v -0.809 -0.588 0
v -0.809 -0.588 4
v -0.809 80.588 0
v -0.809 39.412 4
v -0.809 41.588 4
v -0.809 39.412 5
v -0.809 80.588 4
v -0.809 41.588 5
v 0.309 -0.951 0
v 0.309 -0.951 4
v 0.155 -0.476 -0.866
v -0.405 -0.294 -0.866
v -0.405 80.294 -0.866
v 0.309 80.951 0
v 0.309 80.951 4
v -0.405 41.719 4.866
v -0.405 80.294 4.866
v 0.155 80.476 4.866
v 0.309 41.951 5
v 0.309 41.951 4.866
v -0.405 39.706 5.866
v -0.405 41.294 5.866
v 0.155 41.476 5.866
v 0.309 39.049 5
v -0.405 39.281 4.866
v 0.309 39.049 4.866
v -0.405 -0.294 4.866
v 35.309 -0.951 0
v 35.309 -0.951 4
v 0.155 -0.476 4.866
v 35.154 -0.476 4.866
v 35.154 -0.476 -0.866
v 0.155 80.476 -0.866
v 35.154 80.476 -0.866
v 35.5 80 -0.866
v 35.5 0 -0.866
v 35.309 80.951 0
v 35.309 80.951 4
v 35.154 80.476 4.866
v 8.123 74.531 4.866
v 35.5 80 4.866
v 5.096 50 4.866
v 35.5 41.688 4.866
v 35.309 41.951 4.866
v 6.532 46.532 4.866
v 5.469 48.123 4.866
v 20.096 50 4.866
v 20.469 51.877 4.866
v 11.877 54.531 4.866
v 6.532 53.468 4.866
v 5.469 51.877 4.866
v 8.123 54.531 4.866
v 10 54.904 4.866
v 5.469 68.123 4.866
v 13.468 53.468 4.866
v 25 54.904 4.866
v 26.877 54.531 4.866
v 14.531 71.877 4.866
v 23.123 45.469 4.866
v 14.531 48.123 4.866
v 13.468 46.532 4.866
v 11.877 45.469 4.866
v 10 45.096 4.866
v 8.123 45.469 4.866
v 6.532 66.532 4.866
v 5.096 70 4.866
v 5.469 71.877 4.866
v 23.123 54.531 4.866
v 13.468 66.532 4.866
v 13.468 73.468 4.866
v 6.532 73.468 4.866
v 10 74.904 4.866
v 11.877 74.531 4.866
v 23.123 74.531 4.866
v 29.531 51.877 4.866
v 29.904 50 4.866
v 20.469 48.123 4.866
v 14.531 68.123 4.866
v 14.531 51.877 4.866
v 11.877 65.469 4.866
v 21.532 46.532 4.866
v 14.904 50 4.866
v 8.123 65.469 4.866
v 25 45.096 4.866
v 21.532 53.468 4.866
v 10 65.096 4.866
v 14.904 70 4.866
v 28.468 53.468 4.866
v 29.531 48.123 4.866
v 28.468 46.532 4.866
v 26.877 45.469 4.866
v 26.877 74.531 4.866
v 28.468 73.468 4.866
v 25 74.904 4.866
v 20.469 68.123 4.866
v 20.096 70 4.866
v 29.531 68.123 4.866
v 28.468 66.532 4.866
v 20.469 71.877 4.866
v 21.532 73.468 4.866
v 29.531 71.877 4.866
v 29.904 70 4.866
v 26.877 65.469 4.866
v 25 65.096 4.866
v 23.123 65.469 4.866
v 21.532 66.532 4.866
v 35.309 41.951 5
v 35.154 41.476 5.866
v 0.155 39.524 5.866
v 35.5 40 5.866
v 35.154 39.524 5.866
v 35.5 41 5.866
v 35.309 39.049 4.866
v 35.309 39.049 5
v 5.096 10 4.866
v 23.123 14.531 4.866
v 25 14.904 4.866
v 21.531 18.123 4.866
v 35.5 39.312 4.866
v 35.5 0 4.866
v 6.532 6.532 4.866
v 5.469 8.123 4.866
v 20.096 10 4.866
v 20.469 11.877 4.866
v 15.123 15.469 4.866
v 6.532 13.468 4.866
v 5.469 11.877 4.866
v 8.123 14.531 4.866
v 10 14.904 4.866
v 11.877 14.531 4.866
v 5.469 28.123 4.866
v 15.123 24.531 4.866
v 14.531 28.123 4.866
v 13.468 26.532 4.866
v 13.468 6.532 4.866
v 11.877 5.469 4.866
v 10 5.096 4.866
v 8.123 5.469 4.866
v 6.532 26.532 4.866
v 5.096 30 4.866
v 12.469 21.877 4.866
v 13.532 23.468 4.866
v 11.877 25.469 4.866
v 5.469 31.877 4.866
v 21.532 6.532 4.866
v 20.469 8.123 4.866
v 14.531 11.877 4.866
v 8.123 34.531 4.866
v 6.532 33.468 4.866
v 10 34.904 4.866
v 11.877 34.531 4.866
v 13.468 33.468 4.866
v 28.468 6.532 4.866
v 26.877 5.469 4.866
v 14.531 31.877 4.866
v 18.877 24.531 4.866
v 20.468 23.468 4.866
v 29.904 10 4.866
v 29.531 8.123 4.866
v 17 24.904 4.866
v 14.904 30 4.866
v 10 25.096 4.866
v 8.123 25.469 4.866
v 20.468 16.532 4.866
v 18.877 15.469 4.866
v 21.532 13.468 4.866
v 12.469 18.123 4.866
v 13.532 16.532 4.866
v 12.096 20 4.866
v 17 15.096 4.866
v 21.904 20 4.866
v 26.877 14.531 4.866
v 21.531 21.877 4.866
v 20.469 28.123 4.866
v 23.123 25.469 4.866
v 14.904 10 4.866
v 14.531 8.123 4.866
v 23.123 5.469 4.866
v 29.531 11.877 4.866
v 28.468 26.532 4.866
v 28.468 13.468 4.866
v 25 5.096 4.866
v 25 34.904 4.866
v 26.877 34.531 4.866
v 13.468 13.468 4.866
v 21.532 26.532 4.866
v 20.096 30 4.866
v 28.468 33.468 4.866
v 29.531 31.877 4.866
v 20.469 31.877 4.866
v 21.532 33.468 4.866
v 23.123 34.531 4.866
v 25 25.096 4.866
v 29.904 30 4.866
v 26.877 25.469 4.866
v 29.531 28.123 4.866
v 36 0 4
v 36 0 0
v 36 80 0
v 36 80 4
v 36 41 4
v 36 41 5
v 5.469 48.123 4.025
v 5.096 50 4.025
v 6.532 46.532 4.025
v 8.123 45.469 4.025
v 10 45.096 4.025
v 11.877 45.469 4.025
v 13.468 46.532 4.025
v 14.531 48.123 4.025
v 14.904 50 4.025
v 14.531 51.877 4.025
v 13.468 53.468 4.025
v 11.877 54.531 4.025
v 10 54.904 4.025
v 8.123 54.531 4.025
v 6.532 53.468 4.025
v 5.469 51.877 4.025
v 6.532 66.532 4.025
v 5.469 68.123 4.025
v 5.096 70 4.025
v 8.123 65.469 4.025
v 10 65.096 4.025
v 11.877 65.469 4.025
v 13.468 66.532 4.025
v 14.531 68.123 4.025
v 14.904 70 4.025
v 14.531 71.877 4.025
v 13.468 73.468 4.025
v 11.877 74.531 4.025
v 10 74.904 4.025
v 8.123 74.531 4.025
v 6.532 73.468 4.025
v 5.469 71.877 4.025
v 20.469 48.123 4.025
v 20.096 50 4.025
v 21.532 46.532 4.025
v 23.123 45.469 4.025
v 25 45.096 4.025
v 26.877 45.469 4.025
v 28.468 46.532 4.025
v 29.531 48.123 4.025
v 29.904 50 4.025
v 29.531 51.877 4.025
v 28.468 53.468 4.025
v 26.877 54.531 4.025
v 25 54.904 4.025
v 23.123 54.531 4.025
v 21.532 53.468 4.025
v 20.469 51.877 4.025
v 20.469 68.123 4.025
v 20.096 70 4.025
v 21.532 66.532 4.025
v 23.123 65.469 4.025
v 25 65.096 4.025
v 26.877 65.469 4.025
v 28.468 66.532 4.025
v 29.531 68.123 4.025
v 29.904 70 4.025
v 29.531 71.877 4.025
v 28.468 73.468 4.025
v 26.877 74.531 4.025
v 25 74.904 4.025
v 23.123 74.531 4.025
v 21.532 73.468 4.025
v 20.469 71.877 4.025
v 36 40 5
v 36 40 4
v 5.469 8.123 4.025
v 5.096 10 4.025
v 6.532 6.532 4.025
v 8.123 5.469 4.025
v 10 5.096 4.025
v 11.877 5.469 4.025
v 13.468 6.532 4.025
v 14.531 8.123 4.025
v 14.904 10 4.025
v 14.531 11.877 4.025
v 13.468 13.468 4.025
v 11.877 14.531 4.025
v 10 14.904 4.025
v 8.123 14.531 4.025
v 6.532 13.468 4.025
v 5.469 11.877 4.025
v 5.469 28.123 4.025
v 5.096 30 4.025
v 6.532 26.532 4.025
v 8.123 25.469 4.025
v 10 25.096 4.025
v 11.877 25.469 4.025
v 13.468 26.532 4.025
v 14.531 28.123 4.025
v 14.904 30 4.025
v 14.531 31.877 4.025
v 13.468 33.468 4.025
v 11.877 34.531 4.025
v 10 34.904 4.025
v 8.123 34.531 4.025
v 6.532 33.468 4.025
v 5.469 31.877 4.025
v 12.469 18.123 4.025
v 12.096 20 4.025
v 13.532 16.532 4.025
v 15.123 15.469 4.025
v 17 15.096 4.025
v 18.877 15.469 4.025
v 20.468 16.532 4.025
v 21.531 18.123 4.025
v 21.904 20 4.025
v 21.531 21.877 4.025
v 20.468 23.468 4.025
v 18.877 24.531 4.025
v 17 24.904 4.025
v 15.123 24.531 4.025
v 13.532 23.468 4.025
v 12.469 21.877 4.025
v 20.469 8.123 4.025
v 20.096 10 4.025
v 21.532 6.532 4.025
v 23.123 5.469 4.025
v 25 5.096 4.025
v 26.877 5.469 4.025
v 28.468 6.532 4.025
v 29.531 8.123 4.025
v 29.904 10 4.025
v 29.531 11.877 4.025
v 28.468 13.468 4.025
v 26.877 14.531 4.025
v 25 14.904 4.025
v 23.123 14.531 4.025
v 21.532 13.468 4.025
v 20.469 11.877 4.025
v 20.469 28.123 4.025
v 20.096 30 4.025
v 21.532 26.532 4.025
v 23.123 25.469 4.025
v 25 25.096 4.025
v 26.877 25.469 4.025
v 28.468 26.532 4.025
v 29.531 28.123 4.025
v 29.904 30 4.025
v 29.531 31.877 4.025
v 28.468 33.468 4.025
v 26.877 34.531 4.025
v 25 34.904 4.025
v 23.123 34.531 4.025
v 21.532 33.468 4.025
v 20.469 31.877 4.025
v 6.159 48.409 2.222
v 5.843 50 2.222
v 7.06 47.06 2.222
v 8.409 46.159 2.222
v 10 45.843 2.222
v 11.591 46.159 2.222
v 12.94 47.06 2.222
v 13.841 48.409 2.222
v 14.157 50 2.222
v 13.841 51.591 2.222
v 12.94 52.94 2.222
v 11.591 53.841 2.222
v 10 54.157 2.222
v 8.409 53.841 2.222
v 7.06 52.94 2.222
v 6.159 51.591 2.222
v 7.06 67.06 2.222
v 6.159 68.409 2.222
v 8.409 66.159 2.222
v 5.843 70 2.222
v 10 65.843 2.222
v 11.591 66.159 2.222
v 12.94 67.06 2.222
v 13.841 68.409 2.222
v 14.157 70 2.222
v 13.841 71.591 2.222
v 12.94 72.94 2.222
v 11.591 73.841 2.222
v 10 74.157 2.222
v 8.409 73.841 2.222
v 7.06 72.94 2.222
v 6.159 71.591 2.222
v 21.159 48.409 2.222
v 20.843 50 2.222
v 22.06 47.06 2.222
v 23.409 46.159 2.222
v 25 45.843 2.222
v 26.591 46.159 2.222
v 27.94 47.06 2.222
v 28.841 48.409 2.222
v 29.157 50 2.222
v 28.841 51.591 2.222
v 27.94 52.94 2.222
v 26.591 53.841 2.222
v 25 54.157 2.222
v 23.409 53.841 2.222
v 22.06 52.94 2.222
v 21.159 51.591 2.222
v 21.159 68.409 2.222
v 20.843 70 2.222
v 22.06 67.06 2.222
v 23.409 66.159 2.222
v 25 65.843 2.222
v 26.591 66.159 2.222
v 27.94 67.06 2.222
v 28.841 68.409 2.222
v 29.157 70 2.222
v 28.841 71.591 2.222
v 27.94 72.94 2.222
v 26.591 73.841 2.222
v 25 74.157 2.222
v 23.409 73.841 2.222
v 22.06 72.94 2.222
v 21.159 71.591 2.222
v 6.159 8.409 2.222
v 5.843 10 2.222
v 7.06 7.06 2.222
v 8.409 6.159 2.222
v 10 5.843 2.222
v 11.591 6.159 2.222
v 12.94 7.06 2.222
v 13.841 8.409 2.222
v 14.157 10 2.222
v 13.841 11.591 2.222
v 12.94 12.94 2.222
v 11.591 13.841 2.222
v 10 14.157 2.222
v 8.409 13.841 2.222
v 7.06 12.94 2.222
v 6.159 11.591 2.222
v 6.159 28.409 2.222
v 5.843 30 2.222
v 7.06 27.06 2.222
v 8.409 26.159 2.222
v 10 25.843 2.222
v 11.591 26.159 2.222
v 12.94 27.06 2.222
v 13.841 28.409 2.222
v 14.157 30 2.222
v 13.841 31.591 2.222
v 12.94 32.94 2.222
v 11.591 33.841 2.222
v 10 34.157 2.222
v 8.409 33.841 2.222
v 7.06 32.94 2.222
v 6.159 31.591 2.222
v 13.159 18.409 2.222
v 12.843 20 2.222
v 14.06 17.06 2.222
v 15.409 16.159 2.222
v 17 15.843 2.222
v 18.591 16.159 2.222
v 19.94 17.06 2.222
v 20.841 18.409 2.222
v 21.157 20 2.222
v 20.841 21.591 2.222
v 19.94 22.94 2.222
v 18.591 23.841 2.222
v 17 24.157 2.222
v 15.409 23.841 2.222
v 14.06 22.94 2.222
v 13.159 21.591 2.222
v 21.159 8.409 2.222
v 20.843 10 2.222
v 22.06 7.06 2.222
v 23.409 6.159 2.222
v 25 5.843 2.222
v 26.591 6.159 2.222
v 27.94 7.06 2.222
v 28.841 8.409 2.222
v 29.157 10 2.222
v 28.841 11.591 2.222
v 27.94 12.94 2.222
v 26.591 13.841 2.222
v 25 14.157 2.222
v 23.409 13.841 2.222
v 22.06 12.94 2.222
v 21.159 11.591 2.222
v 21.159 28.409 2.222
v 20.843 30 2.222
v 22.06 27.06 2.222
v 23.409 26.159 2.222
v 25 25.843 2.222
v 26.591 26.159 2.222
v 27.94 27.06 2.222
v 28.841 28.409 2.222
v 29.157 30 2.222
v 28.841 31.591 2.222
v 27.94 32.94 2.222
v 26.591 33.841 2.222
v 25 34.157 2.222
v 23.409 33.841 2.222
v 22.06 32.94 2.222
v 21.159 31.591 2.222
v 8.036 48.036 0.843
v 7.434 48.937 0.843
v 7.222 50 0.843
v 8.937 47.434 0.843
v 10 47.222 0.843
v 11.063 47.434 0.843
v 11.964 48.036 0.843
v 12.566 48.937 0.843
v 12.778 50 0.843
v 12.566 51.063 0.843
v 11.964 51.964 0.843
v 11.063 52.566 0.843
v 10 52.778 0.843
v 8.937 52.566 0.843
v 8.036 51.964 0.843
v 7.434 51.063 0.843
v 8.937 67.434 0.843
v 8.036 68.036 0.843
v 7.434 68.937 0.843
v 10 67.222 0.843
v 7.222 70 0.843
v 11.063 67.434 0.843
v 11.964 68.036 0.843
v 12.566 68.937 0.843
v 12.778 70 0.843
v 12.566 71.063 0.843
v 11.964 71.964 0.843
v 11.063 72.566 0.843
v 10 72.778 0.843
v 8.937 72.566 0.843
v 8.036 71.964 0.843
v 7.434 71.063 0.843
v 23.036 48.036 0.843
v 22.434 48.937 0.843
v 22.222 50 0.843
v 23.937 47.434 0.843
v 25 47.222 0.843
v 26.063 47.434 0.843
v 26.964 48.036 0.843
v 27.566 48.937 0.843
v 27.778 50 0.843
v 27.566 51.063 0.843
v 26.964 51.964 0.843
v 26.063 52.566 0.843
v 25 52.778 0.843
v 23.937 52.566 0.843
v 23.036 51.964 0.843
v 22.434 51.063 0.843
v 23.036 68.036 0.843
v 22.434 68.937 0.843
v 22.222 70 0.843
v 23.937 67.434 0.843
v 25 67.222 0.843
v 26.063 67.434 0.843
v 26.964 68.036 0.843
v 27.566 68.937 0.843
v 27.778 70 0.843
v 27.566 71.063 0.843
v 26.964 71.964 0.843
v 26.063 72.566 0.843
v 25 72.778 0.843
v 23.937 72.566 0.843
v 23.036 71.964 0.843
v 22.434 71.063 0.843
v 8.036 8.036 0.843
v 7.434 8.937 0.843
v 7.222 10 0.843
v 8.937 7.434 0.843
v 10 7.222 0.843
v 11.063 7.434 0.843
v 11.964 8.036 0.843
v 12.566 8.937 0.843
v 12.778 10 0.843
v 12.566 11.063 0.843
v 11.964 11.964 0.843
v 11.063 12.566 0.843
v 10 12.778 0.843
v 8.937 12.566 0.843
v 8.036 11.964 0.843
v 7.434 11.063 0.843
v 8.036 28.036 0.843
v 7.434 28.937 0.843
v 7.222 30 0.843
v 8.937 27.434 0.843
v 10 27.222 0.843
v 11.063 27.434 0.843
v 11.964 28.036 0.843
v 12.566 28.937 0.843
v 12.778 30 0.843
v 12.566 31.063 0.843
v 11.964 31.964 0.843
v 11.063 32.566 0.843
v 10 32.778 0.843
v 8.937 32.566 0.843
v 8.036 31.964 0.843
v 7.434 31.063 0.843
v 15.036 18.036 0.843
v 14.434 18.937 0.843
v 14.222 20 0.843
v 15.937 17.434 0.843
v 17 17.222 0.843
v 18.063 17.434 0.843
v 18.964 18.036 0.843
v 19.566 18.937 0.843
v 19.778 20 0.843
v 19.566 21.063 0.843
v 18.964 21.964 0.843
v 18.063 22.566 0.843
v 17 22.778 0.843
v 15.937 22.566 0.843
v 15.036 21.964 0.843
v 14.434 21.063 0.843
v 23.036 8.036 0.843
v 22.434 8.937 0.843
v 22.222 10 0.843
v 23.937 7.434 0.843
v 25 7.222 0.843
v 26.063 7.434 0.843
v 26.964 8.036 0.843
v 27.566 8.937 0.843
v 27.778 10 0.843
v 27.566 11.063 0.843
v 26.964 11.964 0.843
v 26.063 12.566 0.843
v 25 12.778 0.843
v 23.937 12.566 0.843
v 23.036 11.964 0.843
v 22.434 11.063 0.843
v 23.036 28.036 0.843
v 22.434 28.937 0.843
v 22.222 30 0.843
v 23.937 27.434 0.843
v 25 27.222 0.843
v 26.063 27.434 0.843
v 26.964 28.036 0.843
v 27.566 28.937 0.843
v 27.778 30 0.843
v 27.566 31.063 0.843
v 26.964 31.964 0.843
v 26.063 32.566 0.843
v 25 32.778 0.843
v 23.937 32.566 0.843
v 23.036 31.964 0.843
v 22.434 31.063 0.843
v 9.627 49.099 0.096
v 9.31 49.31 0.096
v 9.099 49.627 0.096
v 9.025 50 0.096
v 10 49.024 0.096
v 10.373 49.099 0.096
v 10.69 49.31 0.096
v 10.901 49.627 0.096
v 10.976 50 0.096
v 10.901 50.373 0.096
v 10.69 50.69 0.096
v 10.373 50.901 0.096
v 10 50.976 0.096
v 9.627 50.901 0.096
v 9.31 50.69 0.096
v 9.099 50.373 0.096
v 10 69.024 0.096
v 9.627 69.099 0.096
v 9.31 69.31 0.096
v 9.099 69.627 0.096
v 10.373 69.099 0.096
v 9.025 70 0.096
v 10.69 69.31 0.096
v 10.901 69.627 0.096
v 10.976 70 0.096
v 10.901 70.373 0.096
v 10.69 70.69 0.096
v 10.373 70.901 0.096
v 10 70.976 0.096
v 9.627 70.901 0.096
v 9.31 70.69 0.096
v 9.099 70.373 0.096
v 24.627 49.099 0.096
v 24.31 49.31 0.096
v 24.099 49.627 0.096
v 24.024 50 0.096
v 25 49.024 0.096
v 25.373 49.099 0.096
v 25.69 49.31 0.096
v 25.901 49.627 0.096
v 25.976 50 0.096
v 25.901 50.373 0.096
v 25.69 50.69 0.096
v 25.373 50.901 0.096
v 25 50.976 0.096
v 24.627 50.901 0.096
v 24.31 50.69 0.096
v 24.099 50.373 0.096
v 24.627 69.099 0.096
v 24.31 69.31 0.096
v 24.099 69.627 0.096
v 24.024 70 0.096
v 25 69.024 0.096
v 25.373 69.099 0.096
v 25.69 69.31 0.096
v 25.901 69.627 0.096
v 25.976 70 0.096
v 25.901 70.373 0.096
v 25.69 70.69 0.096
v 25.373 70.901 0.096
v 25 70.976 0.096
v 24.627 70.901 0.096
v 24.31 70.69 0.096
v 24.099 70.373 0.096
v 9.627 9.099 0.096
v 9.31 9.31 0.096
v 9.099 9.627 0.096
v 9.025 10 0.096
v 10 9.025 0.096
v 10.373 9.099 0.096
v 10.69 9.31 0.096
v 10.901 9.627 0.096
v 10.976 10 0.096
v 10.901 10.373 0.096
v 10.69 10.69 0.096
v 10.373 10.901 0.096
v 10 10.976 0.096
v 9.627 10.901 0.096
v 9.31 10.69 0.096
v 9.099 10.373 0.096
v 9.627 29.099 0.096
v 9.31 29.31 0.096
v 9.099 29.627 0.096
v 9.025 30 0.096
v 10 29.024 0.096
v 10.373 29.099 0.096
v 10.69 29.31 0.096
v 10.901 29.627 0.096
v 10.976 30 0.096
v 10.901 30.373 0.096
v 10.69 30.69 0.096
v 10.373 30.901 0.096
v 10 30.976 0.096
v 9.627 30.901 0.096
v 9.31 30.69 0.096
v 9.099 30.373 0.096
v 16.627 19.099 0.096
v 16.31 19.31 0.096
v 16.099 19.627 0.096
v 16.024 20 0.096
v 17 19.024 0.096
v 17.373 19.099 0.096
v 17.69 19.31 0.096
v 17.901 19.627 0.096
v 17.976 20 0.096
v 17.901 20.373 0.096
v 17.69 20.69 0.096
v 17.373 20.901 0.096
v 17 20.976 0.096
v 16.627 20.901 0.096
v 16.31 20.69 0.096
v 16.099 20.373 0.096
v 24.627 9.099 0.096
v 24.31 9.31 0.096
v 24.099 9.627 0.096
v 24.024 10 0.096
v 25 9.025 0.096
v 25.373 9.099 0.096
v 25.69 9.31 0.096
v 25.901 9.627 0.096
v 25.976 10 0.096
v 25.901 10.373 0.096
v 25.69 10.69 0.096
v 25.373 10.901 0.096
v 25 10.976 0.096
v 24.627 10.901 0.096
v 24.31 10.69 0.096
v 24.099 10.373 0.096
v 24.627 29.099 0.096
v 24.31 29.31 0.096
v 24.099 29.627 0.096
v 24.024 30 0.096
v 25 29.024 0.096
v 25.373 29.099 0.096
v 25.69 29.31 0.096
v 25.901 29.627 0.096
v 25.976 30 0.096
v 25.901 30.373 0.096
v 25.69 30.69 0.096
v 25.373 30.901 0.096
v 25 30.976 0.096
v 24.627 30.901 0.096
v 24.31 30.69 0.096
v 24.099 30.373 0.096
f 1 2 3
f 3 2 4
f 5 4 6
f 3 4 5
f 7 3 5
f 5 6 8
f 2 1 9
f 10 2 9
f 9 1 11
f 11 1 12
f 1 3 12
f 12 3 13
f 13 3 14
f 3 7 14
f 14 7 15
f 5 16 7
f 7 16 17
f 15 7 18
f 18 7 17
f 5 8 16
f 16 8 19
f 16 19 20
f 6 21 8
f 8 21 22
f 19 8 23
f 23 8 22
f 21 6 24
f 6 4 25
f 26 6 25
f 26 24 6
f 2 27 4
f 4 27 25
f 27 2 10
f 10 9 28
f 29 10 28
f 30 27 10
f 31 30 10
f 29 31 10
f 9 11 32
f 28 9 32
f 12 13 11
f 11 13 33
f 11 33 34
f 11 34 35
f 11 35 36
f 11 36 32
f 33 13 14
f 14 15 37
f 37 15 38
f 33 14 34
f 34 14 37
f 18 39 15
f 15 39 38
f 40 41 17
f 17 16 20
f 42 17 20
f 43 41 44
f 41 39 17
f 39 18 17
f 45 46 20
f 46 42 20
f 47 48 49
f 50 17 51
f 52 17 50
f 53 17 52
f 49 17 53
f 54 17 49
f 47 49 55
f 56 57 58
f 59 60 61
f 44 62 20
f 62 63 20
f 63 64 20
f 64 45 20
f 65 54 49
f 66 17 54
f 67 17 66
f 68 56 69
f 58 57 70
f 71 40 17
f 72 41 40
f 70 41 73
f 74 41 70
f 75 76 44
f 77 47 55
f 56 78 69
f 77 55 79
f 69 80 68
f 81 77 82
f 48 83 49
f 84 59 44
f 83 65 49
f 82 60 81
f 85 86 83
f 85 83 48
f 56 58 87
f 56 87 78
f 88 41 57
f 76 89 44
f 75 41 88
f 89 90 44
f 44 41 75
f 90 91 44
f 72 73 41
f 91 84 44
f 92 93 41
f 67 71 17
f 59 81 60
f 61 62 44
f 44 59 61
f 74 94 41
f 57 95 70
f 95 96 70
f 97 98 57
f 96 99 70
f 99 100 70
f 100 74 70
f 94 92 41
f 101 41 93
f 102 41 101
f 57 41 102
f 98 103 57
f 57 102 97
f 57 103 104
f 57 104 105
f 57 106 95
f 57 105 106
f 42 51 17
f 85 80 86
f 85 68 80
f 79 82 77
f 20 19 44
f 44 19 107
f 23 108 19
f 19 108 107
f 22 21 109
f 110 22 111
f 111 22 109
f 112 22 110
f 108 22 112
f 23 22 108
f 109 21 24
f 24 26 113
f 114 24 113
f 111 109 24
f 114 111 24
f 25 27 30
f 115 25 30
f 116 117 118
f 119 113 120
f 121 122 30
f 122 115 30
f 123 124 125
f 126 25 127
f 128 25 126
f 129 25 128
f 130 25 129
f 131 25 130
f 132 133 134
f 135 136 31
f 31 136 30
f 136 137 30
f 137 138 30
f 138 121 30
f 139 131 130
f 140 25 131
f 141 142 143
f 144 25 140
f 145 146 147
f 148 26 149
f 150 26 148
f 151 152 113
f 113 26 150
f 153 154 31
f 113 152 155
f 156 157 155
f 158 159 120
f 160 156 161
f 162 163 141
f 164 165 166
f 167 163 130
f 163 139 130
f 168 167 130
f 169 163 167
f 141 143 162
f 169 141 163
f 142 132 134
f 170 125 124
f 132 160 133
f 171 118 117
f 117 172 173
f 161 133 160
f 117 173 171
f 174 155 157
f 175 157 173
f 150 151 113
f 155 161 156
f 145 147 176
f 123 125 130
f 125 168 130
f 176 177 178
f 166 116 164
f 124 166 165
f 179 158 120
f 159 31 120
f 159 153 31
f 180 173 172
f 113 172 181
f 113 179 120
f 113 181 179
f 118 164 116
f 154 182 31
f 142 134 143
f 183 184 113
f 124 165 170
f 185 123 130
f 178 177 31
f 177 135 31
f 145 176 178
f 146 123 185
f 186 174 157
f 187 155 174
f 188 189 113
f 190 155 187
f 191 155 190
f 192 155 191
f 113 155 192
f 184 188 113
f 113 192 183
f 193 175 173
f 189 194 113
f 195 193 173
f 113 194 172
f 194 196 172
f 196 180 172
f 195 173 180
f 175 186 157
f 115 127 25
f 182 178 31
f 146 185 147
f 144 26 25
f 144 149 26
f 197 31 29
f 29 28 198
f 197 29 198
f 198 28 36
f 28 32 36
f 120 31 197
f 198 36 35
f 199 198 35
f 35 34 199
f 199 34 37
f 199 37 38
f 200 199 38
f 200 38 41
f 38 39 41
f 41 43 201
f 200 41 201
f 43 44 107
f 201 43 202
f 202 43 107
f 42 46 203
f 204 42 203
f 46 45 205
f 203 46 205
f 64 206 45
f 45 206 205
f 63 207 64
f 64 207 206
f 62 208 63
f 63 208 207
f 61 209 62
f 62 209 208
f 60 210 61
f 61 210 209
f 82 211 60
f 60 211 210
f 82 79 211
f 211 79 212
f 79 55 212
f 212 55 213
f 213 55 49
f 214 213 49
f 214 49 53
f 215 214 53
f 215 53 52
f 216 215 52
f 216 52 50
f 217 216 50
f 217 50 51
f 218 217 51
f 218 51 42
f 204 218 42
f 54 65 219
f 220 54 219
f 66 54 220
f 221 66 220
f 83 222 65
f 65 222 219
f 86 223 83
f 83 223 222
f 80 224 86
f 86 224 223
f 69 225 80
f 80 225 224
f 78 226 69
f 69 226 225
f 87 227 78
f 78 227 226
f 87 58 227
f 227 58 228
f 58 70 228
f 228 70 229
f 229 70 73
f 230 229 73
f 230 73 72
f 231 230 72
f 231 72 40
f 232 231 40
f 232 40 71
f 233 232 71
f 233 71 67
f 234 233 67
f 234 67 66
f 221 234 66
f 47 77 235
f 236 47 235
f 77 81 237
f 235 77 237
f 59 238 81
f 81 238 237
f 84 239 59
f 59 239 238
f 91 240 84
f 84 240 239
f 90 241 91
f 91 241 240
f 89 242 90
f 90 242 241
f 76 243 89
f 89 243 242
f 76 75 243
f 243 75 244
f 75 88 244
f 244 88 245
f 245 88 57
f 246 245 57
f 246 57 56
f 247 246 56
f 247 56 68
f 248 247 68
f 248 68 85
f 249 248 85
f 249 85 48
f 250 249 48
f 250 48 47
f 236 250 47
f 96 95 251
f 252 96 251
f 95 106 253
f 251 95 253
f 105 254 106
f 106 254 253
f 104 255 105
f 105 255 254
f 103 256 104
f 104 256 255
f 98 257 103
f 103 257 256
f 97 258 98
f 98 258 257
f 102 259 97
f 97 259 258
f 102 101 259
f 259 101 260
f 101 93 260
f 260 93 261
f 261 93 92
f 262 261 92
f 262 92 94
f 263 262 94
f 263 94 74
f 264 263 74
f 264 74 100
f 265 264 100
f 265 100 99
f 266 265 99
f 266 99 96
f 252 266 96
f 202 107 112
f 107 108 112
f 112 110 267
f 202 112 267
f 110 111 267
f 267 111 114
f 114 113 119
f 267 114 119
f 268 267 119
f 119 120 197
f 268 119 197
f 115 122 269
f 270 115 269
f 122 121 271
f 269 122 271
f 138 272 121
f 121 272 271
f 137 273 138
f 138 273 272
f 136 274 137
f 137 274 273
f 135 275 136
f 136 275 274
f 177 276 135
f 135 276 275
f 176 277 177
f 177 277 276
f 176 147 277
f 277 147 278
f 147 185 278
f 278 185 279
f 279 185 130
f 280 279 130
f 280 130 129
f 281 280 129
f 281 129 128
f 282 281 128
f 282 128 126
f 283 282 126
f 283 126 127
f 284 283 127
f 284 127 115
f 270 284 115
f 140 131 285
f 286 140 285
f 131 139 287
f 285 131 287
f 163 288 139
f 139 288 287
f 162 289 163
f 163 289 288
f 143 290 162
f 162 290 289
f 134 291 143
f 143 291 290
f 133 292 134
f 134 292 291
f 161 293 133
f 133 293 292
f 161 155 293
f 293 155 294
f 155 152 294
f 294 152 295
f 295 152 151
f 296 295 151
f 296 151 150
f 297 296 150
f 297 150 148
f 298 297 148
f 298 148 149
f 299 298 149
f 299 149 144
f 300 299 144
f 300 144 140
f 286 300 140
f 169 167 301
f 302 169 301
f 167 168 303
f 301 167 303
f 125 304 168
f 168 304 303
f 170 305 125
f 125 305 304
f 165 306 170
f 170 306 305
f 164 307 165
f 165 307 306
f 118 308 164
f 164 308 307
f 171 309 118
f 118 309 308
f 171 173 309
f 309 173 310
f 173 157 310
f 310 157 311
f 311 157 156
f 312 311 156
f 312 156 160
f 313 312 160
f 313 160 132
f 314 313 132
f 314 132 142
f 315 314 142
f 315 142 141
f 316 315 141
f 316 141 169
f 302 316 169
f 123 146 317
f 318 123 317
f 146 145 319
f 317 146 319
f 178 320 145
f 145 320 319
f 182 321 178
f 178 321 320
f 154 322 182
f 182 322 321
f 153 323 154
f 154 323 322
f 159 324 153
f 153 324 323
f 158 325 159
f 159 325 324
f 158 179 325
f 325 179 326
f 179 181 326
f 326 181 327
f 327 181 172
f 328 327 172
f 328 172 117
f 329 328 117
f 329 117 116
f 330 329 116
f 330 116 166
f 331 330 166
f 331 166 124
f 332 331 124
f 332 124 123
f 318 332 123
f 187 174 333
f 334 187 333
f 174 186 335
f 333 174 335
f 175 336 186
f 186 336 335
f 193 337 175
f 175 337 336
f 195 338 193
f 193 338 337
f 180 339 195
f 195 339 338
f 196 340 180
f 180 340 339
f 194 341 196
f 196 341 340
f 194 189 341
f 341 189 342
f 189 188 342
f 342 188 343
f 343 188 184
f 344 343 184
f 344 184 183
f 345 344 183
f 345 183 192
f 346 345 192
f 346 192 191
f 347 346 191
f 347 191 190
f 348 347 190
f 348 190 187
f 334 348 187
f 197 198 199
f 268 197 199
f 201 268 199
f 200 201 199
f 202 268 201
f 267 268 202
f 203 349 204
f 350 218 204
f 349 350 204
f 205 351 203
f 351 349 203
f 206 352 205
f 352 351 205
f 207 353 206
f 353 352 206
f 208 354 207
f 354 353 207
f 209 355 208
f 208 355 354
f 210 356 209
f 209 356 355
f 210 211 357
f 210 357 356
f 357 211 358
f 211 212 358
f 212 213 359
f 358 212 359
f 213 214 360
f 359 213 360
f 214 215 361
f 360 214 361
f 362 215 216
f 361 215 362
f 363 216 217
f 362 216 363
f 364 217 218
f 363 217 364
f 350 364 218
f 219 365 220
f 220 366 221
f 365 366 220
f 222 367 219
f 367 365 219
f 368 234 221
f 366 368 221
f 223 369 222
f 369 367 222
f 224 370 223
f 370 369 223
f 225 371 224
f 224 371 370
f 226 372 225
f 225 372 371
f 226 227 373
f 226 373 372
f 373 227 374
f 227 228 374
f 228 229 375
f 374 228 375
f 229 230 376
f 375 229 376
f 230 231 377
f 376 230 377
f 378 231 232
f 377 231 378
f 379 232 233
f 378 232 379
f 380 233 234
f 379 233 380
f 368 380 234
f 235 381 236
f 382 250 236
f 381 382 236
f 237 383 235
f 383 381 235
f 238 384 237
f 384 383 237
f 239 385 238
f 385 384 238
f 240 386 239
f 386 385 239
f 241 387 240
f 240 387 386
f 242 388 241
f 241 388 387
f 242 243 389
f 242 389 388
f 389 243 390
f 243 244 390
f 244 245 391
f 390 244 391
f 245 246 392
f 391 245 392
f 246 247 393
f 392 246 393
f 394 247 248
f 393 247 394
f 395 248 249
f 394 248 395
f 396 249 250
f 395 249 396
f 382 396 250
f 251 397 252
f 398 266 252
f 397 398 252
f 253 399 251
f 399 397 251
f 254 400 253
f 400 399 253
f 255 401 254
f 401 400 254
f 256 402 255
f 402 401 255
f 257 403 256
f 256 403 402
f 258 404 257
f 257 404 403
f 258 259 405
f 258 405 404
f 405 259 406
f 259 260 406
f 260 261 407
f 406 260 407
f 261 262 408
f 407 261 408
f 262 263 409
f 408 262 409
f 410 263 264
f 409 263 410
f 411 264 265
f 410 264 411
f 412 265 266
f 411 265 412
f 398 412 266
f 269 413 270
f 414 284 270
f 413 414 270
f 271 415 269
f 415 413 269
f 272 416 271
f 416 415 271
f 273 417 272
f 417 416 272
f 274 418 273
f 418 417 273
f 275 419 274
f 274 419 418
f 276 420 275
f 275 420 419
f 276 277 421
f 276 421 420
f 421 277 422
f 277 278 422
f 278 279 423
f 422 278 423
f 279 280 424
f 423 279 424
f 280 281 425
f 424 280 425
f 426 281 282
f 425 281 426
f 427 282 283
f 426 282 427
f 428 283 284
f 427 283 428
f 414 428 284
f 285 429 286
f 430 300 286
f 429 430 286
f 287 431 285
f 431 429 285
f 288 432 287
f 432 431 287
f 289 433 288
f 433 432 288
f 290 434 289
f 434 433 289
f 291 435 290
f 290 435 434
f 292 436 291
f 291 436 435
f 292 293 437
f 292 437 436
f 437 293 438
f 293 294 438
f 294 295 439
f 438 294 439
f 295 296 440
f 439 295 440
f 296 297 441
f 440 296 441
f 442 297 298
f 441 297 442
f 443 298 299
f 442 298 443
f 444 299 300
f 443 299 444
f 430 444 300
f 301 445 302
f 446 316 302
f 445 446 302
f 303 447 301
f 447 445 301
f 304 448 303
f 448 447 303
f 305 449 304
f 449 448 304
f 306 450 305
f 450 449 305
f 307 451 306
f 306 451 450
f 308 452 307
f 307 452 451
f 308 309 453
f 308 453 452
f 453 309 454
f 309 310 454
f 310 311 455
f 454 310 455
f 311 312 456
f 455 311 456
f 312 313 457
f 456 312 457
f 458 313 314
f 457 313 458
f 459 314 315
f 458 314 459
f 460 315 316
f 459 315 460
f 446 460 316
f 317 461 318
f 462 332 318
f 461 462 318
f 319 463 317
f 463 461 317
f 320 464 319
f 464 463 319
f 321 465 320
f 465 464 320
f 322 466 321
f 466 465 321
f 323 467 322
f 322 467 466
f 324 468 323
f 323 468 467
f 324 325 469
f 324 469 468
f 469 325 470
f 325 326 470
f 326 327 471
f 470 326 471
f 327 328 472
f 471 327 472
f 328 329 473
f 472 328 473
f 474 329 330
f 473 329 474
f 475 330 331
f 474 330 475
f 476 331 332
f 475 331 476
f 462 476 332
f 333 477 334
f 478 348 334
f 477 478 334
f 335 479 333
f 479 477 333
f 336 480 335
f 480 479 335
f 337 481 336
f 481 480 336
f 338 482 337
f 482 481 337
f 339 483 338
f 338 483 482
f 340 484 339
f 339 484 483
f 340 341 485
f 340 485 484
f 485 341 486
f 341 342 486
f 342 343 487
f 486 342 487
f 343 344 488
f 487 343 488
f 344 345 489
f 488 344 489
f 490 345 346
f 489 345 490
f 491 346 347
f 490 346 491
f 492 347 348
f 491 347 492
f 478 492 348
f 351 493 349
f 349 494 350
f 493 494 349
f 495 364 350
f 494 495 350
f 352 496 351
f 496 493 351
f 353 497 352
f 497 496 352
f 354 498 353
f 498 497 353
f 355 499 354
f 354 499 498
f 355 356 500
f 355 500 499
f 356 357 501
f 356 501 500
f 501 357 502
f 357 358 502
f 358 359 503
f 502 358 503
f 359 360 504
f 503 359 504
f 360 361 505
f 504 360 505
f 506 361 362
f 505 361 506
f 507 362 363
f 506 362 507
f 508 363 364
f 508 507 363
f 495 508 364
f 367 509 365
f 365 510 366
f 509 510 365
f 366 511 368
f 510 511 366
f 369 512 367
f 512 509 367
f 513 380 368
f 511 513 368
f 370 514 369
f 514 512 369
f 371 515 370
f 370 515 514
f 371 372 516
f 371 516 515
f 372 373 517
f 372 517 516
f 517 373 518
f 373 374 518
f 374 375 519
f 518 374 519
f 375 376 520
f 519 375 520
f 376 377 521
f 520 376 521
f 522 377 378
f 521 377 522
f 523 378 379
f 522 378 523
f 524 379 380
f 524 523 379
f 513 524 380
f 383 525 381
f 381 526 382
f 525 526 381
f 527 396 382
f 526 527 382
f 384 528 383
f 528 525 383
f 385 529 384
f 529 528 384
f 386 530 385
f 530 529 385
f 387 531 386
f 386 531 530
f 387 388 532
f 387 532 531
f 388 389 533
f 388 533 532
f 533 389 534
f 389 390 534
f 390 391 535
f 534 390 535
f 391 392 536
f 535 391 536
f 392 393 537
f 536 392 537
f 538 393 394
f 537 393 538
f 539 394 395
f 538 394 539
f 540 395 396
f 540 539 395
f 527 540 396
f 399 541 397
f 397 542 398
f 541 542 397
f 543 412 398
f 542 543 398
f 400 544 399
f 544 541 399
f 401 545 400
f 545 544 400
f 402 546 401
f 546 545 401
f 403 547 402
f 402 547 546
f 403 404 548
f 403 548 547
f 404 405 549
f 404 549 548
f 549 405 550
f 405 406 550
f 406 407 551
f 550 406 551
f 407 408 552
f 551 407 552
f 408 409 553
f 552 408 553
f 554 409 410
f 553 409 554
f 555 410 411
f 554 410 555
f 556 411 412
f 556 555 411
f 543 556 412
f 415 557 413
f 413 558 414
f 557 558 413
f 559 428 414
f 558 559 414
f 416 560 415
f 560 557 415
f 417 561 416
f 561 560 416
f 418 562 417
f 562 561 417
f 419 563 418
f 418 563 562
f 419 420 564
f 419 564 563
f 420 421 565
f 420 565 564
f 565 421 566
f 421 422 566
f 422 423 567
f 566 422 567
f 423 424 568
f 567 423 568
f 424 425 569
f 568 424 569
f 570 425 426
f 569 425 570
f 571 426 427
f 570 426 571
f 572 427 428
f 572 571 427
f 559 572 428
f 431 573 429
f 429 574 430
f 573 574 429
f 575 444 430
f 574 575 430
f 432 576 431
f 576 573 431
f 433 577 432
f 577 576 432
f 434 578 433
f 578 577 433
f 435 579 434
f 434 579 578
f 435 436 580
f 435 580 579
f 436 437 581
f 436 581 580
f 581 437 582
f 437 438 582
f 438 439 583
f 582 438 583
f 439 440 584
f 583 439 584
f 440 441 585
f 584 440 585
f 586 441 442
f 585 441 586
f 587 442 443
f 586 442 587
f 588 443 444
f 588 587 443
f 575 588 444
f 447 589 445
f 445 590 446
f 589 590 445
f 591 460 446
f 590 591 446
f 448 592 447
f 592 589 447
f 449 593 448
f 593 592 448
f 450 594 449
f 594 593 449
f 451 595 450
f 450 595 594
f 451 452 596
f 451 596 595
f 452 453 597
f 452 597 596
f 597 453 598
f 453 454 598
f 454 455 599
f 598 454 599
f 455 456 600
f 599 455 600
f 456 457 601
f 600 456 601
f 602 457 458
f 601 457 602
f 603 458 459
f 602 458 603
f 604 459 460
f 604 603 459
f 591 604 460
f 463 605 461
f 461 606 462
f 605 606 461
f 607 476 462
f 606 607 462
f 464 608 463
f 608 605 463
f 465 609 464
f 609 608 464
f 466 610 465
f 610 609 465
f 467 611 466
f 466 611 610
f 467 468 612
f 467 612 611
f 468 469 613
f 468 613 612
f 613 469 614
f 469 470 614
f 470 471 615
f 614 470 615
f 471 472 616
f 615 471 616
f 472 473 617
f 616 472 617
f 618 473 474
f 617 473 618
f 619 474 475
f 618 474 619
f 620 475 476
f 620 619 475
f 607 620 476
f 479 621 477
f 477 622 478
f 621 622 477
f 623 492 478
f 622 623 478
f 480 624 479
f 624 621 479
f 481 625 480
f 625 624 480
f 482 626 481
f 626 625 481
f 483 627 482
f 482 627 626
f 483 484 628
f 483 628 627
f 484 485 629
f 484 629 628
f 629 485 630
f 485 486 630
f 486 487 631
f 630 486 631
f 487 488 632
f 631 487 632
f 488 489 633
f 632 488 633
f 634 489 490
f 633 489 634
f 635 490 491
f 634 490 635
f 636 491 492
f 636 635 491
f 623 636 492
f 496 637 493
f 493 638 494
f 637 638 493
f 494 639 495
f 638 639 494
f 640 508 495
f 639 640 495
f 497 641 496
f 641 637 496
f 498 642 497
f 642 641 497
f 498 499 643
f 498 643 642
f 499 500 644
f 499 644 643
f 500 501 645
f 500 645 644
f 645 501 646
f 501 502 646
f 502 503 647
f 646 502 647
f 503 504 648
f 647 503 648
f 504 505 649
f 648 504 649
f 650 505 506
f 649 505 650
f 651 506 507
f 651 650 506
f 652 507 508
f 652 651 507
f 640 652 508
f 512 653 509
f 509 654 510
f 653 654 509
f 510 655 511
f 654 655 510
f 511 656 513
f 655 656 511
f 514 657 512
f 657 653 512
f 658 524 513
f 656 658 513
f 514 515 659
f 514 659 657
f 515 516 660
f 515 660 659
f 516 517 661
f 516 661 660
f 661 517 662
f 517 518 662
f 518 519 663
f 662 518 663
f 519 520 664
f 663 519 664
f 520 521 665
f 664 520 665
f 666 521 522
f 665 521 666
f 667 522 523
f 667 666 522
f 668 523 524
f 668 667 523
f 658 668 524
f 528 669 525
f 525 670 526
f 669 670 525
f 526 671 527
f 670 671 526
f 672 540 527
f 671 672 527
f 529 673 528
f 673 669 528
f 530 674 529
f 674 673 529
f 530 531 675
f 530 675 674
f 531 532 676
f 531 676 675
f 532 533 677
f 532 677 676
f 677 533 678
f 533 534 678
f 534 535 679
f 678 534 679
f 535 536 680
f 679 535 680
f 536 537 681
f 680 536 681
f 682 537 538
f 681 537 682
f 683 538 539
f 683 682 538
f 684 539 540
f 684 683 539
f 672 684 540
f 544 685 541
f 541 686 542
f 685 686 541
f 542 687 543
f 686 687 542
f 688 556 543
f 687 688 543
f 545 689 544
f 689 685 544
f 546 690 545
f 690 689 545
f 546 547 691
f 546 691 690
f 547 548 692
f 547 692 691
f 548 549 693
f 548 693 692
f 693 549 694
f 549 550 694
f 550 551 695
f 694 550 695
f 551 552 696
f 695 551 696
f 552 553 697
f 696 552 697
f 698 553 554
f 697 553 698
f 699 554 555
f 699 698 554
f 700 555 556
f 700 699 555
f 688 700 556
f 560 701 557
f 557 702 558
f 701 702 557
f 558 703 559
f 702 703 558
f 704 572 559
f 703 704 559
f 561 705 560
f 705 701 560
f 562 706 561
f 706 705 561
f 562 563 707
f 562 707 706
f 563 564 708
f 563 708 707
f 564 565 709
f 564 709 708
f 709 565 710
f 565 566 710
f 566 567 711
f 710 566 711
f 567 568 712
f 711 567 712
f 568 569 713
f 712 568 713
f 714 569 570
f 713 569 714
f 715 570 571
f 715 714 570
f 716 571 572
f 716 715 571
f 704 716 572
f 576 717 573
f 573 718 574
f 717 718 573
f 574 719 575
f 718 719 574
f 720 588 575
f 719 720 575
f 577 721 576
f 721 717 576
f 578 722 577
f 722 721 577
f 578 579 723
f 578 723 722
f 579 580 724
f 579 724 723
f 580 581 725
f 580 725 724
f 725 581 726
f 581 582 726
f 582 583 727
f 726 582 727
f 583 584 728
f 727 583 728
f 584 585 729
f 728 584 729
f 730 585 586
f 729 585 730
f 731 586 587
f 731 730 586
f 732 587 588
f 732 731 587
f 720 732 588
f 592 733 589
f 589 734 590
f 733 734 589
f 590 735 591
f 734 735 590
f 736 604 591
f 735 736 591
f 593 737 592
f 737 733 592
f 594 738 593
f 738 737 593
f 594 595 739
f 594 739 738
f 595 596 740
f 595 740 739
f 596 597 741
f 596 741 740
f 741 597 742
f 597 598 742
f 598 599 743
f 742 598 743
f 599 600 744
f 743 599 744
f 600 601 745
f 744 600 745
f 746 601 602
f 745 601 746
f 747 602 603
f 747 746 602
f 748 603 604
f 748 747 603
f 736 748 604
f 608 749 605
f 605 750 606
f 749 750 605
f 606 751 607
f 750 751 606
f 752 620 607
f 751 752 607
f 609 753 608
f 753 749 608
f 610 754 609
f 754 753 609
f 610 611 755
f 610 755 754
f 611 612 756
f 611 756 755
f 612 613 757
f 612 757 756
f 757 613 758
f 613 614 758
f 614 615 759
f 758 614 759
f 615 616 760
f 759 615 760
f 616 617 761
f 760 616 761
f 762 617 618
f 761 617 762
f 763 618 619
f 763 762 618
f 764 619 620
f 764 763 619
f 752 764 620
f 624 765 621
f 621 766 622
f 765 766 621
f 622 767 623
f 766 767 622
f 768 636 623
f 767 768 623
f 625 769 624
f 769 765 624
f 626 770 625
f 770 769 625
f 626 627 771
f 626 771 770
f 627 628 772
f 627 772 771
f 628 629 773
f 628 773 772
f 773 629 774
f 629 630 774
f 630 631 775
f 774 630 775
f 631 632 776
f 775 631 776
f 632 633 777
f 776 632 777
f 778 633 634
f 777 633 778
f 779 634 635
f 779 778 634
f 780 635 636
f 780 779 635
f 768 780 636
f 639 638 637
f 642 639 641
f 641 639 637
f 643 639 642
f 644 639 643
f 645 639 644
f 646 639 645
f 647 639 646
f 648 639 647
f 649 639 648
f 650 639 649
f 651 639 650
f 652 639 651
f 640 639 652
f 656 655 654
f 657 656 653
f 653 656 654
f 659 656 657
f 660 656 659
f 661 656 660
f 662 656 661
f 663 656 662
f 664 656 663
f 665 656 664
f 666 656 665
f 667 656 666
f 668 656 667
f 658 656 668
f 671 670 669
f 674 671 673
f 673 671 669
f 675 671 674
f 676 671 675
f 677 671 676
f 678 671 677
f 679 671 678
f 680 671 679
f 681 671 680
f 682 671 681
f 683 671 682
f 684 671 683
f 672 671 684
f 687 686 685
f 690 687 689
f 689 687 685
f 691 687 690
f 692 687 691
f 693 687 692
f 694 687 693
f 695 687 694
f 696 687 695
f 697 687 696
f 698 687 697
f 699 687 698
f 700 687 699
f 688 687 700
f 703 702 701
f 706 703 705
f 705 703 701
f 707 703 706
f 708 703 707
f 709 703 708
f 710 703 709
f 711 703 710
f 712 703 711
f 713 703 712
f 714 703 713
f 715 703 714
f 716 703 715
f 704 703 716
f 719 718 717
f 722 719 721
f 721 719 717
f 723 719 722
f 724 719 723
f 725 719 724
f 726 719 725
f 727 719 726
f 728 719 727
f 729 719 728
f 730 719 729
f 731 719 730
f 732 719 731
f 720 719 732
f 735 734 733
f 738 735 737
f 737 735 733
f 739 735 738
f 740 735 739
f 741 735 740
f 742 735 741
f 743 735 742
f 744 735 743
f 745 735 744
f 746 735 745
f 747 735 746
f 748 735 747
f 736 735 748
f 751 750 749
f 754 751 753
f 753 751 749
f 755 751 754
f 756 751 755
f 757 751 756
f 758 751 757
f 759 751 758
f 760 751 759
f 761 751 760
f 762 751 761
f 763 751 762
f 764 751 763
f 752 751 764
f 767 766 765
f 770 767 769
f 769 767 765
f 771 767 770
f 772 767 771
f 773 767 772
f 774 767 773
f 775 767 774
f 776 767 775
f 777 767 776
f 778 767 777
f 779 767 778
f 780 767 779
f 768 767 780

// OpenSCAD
// Loguncov Maxim 13.12.13

//$fn=128;


translate([0,40,0])
minkowski()
{cube([35,1,5]);
sphere(1);
}

difference() {

//основа
minkowski()
{cube([35,80,4]);
sphere(1);
}

//отверстия
translate([10,70,5])sphere(5);
translate([25,50,5])sphere(5);
translate([25,70,5])sphere(5);
translate([10,50,5])sphere(5);


translate([10,10,5])sphere(5);
translate([25,30,5])sphere(5);
translate([25,10,5])sphere(5);
translate([10,30,5])sphere(5);
translate([17,20,5])sphere(5);

}
